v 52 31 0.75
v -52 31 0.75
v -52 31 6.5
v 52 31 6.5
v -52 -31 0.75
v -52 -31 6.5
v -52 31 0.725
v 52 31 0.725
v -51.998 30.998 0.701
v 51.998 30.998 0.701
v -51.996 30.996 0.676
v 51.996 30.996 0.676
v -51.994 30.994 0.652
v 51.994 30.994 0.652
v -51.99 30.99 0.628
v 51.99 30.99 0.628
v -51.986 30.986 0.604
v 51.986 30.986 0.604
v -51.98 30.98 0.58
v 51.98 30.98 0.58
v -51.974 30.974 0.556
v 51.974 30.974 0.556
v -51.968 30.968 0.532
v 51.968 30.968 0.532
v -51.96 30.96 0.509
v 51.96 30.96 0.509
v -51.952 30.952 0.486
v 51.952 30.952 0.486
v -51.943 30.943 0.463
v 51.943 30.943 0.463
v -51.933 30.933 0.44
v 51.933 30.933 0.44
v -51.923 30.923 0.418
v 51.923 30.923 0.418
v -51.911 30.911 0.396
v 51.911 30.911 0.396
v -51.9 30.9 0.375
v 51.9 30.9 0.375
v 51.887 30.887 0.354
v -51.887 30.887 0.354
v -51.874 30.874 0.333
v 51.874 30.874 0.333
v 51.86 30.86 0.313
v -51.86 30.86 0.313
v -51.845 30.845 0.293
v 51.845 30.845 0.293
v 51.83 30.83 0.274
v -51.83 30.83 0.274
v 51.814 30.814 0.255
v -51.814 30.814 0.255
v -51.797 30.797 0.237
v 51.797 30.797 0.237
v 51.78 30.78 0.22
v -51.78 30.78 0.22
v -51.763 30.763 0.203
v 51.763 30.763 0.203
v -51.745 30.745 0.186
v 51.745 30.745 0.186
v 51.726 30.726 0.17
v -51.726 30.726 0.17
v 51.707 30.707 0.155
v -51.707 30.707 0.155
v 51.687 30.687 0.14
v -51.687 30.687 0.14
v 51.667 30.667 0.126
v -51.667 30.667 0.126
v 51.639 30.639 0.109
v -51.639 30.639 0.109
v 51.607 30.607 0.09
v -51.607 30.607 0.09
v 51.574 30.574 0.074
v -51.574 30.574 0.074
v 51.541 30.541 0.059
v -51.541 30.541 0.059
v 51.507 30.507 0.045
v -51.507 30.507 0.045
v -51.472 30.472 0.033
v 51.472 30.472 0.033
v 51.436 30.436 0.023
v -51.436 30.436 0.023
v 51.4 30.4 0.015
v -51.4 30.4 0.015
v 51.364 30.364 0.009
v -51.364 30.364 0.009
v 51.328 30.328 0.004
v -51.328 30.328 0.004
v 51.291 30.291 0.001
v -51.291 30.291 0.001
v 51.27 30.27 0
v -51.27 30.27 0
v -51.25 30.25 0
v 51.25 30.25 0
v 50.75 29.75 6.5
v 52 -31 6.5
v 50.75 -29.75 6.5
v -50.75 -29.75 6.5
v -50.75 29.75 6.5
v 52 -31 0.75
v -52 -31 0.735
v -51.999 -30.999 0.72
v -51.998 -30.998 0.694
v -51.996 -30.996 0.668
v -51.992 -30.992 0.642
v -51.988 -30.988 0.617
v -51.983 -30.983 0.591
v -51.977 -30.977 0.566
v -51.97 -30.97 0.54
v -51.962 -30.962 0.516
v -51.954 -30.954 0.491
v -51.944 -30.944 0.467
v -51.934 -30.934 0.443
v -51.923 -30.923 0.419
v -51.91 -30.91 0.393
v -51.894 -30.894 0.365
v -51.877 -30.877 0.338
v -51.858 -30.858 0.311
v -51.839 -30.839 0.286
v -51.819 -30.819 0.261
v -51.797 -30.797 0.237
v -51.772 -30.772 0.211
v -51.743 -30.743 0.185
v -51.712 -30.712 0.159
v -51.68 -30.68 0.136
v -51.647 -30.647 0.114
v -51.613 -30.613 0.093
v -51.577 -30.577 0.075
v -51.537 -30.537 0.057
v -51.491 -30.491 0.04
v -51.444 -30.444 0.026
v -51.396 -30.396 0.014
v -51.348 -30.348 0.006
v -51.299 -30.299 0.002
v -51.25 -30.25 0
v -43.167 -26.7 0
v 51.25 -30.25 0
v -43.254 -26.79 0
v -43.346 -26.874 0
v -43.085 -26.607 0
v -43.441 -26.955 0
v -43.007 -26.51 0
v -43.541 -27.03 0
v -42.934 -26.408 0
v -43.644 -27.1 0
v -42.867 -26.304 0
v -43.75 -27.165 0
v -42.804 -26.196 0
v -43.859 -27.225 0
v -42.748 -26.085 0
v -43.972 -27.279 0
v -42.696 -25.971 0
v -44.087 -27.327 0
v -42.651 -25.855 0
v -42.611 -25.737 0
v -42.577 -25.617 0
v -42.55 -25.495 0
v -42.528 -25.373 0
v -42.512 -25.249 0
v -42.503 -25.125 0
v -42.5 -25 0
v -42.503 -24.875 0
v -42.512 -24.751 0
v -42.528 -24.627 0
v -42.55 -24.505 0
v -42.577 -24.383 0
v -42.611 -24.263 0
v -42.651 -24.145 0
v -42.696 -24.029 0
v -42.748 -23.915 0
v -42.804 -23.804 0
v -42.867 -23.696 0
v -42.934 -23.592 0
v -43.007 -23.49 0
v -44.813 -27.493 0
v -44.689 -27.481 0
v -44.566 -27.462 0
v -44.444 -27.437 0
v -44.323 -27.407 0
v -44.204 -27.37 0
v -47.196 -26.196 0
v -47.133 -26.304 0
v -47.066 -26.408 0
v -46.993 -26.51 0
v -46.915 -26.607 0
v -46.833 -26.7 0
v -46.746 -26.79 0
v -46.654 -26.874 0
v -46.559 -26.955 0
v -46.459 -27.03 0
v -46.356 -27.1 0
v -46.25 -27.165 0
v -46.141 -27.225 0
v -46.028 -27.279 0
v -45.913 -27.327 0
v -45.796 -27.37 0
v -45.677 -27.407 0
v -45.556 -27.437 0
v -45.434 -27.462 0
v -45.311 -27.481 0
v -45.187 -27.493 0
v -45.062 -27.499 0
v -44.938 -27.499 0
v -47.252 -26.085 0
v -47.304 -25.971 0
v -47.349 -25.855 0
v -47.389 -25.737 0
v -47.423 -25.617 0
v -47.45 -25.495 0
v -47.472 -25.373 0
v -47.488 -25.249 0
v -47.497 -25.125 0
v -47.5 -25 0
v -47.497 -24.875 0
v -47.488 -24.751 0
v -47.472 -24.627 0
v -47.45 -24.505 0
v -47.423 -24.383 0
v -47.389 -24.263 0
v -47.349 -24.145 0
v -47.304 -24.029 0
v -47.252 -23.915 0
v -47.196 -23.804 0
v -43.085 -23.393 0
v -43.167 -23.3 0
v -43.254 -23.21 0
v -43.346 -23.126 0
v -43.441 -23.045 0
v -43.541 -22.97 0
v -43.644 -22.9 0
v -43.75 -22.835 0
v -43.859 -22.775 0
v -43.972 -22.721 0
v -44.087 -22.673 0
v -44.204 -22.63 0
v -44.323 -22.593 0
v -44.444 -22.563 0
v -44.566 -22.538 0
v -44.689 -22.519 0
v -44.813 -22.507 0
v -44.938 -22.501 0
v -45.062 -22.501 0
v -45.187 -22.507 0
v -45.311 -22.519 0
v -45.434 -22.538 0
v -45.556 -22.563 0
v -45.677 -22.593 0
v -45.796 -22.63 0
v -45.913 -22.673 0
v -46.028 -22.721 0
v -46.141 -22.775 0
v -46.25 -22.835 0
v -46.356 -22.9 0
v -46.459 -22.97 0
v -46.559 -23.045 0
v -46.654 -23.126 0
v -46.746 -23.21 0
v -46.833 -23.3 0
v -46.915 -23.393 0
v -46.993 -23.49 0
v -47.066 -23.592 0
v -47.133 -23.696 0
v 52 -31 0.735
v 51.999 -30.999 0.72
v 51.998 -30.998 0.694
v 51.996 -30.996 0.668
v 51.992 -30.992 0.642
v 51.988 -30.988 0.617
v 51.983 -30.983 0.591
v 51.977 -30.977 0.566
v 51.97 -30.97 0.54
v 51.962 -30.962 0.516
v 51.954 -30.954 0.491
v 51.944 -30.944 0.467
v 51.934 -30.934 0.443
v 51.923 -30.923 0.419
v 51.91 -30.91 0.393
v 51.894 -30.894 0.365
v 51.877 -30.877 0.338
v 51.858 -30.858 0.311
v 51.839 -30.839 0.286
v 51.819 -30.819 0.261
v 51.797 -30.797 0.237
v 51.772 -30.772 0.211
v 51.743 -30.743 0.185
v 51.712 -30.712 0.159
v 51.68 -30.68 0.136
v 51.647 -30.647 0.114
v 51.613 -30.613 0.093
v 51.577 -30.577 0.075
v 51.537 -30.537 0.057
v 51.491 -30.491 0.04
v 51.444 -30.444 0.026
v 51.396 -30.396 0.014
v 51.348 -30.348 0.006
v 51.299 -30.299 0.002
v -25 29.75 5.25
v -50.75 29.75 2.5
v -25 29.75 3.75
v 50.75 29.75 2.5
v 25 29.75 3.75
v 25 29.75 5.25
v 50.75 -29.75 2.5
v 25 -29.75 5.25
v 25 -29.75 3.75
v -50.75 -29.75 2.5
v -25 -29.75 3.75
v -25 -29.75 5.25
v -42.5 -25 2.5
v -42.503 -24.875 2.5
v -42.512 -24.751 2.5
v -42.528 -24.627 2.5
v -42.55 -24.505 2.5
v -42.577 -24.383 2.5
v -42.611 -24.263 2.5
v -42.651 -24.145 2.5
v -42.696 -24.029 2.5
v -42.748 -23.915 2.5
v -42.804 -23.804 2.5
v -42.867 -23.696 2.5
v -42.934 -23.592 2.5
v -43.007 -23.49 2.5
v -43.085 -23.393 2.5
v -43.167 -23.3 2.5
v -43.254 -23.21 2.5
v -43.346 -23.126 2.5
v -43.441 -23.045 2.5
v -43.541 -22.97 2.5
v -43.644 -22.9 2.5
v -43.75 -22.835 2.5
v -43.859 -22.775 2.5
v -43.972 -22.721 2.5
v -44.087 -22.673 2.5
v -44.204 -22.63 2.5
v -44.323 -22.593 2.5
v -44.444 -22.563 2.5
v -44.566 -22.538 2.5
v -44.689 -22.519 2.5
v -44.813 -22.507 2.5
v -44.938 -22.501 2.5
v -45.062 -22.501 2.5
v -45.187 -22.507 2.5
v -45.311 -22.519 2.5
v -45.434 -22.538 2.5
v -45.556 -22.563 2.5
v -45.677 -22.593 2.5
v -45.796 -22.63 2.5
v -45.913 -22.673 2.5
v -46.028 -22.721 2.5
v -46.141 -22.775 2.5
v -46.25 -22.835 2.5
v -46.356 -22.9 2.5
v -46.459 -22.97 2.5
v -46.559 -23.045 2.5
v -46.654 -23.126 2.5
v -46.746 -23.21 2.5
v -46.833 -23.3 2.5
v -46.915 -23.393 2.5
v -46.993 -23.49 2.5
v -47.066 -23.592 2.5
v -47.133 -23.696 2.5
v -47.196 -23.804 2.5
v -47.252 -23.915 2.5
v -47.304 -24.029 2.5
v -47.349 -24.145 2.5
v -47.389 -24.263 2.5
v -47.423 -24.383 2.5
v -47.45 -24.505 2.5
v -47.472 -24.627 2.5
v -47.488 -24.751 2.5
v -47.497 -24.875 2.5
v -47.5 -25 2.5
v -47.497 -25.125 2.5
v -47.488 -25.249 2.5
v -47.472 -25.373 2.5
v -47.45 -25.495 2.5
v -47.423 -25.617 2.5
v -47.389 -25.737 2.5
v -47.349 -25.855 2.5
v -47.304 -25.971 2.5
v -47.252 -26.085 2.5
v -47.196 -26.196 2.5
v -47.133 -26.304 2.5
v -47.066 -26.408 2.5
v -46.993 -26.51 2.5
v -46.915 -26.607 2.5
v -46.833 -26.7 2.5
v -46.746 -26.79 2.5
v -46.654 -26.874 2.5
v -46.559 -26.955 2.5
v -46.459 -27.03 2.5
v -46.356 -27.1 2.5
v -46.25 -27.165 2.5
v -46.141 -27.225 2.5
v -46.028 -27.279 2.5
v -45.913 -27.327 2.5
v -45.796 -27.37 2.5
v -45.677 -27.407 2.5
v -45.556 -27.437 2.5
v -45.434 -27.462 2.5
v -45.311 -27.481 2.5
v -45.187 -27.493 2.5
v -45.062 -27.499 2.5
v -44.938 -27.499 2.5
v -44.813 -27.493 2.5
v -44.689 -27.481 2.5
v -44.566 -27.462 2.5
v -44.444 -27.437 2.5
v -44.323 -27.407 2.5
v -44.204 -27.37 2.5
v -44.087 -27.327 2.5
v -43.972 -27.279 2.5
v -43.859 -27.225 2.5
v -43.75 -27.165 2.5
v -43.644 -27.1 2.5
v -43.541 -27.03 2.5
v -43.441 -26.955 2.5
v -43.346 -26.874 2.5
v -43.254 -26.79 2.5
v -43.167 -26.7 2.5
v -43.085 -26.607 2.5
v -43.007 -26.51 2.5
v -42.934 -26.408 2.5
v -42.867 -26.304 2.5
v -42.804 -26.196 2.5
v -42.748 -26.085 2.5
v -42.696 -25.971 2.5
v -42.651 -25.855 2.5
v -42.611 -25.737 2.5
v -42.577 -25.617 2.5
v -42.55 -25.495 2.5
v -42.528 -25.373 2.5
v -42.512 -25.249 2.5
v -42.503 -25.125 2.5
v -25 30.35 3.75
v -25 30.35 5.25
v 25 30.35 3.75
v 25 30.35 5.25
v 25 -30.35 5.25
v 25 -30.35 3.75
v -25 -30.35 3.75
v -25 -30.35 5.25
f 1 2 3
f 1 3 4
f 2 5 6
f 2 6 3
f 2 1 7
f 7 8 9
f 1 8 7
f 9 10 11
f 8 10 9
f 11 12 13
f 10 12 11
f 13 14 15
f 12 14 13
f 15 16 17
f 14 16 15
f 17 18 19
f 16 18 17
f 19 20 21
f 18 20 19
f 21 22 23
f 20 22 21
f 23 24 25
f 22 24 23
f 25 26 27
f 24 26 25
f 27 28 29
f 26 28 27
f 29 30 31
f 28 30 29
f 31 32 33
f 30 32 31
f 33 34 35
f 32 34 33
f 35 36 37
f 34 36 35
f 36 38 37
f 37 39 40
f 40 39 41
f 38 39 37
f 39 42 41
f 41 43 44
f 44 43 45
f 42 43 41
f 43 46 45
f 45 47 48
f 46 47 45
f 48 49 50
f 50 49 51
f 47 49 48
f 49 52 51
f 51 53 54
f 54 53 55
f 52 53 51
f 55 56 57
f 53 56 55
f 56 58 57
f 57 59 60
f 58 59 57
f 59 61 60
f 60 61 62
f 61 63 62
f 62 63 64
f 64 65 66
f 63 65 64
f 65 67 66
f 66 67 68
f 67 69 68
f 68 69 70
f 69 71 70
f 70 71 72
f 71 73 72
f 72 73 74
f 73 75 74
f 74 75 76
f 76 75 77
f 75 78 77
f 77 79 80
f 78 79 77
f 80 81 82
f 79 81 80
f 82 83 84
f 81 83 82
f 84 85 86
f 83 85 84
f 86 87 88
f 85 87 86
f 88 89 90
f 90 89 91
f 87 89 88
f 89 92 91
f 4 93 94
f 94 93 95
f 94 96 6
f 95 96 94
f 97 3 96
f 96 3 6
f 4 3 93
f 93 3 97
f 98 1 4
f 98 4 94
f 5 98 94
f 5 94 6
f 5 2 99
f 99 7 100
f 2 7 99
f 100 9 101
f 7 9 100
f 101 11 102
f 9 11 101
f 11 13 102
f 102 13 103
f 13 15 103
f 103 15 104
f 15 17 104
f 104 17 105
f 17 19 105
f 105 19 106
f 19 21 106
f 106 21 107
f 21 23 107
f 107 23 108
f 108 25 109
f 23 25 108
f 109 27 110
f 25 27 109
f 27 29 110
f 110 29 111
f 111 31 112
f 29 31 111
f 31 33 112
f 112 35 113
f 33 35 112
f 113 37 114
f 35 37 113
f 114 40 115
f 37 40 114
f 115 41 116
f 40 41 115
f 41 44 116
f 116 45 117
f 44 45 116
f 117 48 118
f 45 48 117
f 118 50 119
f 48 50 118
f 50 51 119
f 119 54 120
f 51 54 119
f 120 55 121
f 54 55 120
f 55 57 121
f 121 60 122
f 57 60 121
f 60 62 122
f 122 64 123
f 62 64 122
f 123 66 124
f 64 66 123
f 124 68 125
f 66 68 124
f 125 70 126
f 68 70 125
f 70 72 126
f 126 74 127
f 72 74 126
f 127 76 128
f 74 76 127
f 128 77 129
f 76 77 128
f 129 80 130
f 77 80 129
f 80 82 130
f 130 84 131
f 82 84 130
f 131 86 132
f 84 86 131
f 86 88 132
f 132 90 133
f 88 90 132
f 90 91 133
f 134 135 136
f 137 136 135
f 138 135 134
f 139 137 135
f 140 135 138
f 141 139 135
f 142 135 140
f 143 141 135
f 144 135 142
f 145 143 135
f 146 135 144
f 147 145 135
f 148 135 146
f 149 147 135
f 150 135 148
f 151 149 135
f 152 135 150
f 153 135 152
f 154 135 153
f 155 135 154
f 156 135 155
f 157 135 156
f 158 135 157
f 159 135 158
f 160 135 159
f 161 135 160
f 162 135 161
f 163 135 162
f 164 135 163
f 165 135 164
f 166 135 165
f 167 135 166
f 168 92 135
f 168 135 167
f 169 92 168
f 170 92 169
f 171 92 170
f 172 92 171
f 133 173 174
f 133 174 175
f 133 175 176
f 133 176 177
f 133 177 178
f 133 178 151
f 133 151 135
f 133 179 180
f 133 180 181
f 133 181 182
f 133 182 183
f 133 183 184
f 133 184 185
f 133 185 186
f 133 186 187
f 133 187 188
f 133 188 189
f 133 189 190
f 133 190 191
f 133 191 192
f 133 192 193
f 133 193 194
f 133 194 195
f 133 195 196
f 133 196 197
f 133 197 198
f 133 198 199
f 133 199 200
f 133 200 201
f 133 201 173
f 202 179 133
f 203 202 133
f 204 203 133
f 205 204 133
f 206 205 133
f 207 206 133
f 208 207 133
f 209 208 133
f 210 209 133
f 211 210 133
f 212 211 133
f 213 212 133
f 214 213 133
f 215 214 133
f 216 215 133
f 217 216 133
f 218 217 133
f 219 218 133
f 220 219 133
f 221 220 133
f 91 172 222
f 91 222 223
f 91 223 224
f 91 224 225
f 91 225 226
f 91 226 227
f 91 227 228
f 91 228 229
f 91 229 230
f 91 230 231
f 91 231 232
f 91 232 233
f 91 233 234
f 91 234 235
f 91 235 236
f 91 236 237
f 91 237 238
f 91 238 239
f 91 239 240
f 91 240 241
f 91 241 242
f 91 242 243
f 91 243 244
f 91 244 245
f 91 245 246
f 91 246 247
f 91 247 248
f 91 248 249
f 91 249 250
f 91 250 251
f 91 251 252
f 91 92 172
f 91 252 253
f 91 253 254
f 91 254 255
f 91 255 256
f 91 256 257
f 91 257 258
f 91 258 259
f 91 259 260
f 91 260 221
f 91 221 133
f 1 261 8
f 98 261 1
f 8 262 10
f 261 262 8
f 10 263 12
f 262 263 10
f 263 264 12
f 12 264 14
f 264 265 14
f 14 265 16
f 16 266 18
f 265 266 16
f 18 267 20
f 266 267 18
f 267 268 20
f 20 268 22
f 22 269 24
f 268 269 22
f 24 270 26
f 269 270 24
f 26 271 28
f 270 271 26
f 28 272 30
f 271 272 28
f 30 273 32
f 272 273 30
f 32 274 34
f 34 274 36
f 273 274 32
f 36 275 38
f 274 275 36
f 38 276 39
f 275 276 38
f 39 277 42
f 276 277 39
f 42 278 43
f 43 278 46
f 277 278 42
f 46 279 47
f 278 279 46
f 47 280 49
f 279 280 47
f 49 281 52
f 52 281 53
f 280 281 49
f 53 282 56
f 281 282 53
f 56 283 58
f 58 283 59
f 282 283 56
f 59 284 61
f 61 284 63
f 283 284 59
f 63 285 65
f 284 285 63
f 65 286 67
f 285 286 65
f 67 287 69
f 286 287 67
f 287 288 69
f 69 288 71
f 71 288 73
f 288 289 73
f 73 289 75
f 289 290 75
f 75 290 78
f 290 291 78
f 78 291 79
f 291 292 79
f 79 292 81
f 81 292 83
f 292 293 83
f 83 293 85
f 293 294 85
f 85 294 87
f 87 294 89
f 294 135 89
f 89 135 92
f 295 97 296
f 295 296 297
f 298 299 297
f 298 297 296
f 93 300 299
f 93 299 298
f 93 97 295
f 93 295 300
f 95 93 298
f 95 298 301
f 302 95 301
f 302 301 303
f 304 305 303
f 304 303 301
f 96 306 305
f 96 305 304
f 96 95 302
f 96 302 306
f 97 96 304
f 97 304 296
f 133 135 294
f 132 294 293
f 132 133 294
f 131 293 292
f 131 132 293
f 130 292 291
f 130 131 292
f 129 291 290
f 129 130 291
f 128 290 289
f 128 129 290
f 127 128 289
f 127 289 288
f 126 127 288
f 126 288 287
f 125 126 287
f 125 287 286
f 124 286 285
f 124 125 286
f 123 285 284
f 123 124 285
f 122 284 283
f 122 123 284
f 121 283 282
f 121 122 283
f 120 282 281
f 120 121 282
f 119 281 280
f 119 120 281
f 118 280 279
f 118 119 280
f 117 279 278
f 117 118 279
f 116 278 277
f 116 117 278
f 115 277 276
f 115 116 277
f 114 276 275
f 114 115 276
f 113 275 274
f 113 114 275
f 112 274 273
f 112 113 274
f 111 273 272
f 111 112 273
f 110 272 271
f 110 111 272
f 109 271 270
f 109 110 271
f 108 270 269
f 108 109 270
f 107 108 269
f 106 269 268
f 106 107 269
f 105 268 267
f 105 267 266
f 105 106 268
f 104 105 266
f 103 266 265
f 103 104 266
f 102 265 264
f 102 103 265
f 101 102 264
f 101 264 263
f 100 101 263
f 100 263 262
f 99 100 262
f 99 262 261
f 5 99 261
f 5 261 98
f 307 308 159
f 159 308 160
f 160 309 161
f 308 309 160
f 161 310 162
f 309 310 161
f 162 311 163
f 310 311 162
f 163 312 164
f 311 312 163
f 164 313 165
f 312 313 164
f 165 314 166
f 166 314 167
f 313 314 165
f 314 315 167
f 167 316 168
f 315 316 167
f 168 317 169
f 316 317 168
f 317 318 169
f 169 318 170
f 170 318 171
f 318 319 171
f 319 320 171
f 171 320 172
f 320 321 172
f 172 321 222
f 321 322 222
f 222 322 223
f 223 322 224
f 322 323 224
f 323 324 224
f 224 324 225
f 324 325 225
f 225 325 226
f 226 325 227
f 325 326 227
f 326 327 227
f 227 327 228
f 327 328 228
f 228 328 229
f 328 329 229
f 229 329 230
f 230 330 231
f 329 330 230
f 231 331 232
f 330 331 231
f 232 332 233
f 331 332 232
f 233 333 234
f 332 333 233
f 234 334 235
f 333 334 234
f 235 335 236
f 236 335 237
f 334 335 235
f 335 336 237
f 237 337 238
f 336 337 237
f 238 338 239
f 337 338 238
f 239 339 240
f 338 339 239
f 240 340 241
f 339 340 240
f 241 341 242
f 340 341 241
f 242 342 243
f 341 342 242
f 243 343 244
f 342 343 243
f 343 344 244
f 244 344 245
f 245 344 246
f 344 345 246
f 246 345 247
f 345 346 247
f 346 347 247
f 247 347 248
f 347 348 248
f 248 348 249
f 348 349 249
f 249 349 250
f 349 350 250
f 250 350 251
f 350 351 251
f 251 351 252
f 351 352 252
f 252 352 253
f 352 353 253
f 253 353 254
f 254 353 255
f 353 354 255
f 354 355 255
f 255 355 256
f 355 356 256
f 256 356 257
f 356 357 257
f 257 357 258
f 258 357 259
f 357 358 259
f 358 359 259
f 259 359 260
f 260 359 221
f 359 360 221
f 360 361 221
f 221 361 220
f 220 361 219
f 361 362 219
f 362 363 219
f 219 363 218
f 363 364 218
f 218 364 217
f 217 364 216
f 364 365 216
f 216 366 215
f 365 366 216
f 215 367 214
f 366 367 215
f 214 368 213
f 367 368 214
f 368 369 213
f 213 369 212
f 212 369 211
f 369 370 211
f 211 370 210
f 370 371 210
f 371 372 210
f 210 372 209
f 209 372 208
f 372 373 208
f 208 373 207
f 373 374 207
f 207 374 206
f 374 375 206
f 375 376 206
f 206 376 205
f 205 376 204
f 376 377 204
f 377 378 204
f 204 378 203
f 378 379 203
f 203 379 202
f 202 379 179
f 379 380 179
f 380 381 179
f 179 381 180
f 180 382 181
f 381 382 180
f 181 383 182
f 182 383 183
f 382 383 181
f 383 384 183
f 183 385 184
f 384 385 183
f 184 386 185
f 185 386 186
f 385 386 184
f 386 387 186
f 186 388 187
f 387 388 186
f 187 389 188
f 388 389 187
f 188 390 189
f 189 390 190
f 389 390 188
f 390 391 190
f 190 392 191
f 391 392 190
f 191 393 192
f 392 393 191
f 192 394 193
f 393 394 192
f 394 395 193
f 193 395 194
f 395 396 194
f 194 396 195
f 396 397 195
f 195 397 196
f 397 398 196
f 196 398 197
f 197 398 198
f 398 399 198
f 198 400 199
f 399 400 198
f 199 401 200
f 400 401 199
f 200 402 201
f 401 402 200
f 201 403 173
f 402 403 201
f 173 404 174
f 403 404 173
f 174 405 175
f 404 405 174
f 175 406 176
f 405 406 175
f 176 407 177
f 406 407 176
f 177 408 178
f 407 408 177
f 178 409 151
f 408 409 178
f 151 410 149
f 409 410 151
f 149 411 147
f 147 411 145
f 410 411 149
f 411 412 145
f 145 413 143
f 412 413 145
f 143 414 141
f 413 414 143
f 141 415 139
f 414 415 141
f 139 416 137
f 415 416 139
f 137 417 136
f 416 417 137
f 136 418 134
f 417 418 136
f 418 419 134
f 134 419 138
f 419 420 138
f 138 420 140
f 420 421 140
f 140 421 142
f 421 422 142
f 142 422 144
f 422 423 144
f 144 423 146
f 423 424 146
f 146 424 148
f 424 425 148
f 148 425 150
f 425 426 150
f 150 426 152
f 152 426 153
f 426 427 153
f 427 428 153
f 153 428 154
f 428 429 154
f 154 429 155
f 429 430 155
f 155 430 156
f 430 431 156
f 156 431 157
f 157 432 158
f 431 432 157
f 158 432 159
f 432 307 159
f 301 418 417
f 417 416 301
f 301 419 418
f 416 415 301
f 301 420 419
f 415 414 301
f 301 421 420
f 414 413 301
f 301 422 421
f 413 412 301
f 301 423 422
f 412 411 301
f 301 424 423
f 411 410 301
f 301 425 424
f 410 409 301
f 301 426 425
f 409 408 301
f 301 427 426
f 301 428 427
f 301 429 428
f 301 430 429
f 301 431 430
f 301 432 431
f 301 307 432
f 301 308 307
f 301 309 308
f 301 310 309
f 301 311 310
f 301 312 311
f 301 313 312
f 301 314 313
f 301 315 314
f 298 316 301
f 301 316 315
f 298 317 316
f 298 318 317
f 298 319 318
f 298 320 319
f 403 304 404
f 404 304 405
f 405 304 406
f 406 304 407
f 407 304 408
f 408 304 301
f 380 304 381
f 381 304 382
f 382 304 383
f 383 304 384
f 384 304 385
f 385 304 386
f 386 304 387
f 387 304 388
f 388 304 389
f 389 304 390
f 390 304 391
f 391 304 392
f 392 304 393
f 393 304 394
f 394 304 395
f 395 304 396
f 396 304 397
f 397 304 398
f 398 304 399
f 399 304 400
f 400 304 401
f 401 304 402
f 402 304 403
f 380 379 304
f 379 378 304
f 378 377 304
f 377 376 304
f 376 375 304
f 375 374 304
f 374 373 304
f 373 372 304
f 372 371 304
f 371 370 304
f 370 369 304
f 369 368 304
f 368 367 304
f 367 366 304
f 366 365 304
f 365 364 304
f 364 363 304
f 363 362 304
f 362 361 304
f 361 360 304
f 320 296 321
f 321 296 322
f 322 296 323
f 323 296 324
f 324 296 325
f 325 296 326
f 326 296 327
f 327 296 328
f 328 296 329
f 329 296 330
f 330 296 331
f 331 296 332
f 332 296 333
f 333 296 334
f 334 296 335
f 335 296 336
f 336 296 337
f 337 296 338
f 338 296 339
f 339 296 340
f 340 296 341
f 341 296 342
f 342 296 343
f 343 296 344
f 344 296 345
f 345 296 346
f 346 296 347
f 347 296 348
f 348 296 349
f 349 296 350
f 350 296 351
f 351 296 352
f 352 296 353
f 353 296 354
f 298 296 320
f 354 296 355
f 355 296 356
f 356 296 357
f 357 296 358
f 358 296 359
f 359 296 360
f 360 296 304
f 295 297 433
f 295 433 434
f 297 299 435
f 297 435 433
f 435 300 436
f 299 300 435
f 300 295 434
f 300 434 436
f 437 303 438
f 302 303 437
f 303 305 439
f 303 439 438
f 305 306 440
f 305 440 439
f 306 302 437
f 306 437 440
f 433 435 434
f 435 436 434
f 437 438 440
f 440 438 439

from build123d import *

# Parameters (mm, degrees)
SKETCH_W        = 104
SKETCH_H        = 62
PAD_DEPTH       = 6.5
SKETCH001_W     = 101.5
SKETCH001_H     = 59.5
POCKET_DEPTH    = 4
SKETCH002_W     = 50
SKETCH002_H     = 1.5
POCKET001_DEPTH = 0.6
SKETCH003_W     = 50
SKETCH003_H     = 1.5
POCKET002_DEPTH = 0.6
FILLET_R        = 0.75
SKETCH004_R     = 2.5
POCKET003_DEPTH = 3


with BuildPart() as part:
    # Sketch → Pad (new body)
    with BuildSketch(Plane.XY):
        Rectangle(SKETCH_W, SKETCH_H)
    extrude(amount=PAD_DEPTH)

    # Sketch001 (on Face6 of Pad) → Pocket (cut)
    with BuildSketch(Plane.XY.offset(6.5)):
        Rectangle(SKETCH001_W, SKETCH001_H)
    extrude(amount=-POCKET_DEPTH, mode=Mode.SUBTRACT)

    # Sketch002 (on Face7 of Pocket) → Pocket001 (cut)
    with BuildSketch(Plane.XZ.offset(-29.75)):
        with Locations((0, 4.5)):
            Rectangle(SKETCH002_W, SKETCH002_H)
    extrude(amount=-POCKET001_DEPTH, mode=Mode.SUBTRACT)

    # Sketch003 (on Face9 of Pocket001) → Pocket002 (cut)
    with BuildSketch(Plane(origin=(0, -29.75, 0), x_dir=(-1, 0, 0), z_dir=(0, 1, 0))):
        with Locations((0, 4.5)):
            Rectangle(SKETCH003_W, SKETCH003_H)
    extrude(amount=-POCKET002_DEPTH, mode=Mode.SUBTRACT)

    # Fillet
    fillet_edges = [part.edges().sort_by_distance(p)[0] for p in [
        (0, -31, 0),
        (52, 0, 0),
        (0, 31, 0),
        (-52, 0, 0),
    ]]
    fillet(fillet_edges, radius=FILLET_R)

    # Sketch004 (on Face15 of Fillet) → Pocket003 (cut)
    with BuildSketch(Plane.XY.offset(2.5)):
        with Locations((-45, -25)):
            Circle(SKETCH004_R)
    extrude(amount=-POCKET003_DEPTH, mode=Mode.SUBTRACT)


solid = part.part
